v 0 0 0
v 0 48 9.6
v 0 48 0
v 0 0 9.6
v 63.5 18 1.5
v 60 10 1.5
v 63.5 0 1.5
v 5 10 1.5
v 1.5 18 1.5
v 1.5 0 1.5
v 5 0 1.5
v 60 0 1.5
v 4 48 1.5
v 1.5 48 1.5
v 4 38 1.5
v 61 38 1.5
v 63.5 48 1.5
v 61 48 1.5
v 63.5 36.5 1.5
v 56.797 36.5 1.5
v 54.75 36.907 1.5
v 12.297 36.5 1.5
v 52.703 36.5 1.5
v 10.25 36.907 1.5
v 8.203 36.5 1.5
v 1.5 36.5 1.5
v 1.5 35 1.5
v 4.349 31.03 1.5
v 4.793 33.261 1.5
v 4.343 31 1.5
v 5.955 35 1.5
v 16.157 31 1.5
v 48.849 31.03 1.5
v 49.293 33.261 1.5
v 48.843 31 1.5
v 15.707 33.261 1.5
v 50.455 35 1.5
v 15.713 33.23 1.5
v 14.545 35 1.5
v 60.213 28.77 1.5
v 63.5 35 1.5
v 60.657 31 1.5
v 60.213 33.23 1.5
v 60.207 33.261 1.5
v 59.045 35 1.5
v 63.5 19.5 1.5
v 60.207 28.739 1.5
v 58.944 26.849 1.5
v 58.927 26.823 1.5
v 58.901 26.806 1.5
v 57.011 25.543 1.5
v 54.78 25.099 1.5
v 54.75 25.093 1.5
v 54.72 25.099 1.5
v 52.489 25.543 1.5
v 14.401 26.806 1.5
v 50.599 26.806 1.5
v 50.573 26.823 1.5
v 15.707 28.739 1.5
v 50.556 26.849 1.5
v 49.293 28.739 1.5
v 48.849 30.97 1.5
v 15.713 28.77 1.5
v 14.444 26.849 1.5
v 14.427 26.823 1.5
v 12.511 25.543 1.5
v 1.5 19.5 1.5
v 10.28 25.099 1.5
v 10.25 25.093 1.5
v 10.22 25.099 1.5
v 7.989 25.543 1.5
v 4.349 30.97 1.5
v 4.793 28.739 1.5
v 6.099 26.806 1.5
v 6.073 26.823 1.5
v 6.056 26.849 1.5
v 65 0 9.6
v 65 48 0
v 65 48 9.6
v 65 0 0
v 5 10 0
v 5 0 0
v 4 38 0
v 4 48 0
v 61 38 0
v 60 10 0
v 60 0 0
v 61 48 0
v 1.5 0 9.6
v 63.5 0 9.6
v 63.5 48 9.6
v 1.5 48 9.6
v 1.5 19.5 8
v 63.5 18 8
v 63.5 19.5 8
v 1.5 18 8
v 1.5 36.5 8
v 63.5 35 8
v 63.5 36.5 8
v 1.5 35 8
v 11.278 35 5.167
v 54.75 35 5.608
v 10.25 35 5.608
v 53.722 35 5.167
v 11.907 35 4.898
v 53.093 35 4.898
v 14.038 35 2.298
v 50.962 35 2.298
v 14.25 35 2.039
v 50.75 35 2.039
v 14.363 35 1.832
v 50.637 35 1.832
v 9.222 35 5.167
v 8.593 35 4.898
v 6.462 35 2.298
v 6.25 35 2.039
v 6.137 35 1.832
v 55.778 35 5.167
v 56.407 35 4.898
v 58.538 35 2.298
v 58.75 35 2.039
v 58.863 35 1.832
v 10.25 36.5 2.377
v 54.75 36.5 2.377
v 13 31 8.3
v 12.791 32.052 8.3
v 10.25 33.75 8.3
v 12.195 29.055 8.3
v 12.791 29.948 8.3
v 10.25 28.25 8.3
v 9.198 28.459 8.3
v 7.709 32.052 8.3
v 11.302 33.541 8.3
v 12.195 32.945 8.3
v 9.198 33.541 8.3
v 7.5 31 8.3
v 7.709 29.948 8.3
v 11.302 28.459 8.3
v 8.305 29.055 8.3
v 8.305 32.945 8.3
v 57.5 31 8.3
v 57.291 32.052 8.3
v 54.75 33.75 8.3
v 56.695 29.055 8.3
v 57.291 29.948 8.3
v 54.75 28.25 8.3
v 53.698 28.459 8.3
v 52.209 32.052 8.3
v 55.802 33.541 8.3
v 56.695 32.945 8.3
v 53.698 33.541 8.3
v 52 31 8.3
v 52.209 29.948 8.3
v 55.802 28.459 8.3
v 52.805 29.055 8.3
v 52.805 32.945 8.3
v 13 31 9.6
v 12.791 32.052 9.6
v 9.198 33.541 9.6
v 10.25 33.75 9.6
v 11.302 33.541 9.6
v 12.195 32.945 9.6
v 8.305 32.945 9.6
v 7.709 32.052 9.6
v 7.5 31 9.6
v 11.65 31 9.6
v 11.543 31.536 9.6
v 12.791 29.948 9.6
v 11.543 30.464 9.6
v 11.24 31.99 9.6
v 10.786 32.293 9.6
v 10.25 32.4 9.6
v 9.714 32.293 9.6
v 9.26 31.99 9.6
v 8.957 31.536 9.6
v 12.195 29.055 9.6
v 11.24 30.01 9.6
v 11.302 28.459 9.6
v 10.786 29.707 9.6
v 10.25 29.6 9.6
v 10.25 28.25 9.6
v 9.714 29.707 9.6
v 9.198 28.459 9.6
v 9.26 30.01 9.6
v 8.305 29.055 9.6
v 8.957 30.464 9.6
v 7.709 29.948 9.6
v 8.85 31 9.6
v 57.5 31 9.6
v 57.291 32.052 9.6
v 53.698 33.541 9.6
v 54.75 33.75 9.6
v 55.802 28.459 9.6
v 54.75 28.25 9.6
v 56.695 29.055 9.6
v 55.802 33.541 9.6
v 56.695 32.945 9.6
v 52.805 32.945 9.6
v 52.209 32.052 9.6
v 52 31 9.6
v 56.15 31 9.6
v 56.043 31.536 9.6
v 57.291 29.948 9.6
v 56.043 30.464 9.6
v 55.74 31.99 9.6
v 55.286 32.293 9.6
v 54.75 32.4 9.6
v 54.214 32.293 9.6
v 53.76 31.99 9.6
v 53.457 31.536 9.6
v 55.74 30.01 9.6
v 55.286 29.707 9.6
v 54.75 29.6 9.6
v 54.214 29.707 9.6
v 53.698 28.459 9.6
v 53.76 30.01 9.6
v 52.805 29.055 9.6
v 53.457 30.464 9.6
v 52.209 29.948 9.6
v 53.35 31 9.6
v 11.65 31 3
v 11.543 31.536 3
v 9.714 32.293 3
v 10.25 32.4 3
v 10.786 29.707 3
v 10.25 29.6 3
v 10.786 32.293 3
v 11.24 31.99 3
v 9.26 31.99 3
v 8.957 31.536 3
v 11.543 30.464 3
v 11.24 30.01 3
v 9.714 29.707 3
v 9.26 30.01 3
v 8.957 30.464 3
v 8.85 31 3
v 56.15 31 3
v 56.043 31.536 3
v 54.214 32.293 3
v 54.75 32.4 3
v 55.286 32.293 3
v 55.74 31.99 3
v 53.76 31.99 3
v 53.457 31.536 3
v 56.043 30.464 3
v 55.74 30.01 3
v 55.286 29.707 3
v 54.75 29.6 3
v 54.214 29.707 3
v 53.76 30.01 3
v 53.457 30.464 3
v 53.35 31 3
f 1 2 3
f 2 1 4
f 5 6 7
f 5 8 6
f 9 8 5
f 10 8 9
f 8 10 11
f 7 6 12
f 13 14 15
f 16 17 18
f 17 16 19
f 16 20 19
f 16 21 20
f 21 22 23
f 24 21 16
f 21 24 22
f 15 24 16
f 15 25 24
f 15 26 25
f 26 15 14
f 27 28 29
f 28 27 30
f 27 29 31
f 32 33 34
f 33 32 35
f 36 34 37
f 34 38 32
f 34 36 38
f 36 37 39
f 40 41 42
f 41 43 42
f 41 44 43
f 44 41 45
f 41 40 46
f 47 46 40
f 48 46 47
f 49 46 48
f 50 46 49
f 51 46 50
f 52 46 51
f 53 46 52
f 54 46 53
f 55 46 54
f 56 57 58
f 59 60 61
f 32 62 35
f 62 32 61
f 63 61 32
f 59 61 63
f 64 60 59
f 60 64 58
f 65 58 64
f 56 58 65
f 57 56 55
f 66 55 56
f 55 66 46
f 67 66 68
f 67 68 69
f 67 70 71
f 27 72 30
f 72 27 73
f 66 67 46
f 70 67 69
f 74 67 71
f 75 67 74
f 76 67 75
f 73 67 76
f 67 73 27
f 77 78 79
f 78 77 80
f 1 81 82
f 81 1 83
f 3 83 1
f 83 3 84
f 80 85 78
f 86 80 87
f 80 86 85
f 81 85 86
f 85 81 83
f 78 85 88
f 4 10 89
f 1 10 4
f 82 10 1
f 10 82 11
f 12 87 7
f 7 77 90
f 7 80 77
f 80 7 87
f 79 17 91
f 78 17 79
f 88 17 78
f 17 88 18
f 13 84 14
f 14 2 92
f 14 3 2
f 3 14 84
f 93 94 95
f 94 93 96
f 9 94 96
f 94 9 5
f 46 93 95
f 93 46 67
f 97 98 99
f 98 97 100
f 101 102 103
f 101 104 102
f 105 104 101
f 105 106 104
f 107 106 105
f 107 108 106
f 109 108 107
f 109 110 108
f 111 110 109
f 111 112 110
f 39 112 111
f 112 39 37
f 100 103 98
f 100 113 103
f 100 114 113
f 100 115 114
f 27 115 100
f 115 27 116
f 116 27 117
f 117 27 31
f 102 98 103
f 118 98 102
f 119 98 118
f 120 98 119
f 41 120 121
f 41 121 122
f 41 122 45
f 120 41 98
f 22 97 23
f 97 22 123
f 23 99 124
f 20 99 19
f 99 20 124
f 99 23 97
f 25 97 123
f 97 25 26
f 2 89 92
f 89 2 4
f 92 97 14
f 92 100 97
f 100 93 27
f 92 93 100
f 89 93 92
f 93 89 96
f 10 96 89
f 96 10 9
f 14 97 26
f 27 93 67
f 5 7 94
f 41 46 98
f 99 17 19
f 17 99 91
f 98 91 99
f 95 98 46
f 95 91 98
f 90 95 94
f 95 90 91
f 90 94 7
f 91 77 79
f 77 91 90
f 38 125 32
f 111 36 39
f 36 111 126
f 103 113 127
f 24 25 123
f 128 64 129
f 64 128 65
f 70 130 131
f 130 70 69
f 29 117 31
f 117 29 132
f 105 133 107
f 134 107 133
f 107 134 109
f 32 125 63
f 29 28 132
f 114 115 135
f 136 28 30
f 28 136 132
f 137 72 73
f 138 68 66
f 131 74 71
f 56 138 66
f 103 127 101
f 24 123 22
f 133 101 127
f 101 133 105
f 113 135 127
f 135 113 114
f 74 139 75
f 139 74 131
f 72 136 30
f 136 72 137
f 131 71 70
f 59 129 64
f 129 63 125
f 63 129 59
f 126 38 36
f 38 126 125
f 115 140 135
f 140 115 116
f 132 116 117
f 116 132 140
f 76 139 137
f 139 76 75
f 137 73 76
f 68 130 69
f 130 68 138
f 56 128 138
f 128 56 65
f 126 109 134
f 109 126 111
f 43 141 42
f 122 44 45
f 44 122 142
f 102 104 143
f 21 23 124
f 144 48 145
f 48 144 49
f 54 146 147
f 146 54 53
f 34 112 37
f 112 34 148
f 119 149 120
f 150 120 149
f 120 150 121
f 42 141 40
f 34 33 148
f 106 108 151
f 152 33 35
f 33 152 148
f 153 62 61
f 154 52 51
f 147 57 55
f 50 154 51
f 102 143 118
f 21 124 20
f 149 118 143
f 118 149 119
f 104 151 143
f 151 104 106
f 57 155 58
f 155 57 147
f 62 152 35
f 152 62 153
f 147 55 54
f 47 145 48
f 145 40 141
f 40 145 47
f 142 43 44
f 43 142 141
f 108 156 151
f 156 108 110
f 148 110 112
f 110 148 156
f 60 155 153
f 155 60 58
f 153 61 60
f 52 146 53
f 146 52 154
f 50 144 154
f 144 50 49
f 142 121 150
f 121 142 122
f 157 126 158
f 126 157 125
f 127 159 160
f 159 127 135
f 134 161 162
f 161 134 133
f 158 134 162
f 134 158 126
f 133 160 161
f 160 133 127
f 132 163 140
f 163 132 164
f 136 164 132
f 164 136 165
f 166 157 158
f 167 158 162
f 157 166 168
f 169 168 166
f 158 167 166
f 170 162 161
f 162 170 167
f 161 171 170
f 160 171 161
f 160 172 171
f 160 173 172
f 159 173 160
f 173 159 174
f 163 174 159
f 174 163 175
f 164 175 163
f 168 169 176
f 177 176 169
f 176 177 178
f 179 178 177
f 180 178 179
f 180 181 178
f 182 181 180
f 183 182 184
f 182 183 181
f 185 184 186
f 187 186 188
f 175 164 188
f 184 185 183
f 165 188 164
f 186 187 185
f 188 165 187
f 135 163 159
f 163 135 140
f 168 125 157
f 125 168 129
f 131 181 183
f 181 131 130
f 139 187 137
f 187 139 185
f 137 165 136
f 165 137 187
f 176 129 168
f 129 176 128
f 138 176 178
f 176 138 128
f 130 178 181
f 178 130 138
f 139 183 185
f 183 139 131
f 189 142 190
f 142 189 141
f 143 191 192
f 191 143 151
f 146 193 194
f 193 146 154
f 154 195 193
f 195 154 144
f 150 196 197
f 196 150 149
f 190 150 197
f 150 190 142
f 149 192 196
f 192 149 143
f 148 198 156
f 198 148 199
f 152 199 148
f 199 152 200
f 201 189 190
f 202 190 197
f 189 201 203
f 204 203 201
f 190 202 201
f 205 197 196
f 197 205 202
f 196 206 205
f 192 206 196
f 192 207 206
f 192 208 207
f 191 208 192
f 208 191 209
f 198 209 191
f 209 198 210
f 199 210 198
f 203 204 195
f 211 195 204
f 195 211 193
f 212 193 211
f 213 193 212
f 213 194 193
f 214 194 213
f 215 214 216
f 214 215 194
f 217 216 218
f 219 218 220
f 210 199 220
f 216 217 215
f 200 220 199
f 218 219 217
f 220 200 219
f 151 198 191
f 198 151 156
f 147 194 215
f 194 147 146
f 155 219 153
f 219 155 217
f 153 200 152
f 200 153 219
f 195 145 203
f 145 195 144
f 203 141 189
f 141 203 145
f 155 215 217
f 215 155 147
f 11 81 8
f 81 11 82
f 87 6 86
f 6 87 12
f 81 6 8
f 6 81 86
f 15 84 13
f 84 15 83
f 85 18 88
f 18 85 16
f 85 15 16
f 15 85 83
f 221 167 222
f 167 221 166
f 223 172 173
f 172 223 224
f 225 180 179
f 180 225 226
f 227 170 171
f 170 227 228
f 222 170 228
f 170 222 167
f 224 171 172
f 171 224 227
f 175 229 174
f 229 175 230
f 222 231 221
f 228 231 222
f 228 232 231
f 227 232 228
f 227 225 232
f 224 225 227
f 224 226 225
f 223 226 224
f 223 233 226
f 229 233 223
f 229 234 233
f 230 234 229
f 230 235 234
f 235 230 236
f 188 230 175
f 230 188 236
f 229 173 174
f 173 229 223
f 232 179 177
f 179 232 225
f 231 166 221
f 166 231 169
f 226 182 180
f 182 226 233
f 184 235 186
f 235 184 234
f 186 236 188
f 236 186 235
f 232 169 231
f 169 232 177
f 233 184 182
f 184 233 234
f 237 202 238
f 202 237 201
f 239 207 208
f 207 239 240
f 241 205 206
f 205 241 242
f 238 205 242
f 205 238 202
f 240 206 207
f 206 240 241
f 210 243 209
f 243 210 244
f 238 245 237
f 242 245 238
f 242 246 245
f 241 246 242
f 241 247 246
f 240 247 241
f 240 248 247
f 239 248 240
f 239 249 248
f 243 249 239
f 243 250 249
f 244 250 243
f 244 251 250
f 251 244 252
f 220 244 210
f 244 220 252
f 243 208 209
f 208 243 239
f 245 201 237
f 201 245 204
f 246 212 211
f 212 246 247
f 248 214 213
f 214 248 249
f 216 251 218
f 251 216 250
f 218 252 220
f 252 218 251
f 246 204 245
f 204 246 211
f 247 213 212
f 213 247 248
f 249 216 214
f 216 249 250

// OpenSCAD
$fn = 16;

difference(){
    shape();

    translate([5,0,0])
      cube([55, 10, 1.5]);

    translate([4,38,0])
      cube([57, 15, 1.5]);

    translate([10.25, 31, 7])
        cylinder(h=8, r=1.4, center=true);
    
    translate([65-10.25, 31, 7])
        cylinder(h=8, r=1.4, center=true);
}

module shape() {
    cube([65, 48, 1.5]);
    
    translate([0,18,0])
      cube([65, 1.5, 8]);
    translate([0, 35, 0])
      cube([65, 1.5, 8]);
    
    cube([1.5, 48, 9.6]);
      translate([65-1.5, 0, 0])
    cube([1.5, 48, 9.6]);
    
    translate([10.25, 31, 4.8])
        cylinder(h=7, r1=6, r2=5.5/2, center=true);
    translate([65-10.25, 31, 4.8])
        cylinder(h=7, r1=6, r2=5.5/2, center=true);

    translate([10.25, 31, 4.8])
        cylinder(h=9.6, r=5.5/2, center=true);
    translate([65-10.25, 31, 4.8])
        cylinder(h=9.6, r=5.5/2, center=true);
}
